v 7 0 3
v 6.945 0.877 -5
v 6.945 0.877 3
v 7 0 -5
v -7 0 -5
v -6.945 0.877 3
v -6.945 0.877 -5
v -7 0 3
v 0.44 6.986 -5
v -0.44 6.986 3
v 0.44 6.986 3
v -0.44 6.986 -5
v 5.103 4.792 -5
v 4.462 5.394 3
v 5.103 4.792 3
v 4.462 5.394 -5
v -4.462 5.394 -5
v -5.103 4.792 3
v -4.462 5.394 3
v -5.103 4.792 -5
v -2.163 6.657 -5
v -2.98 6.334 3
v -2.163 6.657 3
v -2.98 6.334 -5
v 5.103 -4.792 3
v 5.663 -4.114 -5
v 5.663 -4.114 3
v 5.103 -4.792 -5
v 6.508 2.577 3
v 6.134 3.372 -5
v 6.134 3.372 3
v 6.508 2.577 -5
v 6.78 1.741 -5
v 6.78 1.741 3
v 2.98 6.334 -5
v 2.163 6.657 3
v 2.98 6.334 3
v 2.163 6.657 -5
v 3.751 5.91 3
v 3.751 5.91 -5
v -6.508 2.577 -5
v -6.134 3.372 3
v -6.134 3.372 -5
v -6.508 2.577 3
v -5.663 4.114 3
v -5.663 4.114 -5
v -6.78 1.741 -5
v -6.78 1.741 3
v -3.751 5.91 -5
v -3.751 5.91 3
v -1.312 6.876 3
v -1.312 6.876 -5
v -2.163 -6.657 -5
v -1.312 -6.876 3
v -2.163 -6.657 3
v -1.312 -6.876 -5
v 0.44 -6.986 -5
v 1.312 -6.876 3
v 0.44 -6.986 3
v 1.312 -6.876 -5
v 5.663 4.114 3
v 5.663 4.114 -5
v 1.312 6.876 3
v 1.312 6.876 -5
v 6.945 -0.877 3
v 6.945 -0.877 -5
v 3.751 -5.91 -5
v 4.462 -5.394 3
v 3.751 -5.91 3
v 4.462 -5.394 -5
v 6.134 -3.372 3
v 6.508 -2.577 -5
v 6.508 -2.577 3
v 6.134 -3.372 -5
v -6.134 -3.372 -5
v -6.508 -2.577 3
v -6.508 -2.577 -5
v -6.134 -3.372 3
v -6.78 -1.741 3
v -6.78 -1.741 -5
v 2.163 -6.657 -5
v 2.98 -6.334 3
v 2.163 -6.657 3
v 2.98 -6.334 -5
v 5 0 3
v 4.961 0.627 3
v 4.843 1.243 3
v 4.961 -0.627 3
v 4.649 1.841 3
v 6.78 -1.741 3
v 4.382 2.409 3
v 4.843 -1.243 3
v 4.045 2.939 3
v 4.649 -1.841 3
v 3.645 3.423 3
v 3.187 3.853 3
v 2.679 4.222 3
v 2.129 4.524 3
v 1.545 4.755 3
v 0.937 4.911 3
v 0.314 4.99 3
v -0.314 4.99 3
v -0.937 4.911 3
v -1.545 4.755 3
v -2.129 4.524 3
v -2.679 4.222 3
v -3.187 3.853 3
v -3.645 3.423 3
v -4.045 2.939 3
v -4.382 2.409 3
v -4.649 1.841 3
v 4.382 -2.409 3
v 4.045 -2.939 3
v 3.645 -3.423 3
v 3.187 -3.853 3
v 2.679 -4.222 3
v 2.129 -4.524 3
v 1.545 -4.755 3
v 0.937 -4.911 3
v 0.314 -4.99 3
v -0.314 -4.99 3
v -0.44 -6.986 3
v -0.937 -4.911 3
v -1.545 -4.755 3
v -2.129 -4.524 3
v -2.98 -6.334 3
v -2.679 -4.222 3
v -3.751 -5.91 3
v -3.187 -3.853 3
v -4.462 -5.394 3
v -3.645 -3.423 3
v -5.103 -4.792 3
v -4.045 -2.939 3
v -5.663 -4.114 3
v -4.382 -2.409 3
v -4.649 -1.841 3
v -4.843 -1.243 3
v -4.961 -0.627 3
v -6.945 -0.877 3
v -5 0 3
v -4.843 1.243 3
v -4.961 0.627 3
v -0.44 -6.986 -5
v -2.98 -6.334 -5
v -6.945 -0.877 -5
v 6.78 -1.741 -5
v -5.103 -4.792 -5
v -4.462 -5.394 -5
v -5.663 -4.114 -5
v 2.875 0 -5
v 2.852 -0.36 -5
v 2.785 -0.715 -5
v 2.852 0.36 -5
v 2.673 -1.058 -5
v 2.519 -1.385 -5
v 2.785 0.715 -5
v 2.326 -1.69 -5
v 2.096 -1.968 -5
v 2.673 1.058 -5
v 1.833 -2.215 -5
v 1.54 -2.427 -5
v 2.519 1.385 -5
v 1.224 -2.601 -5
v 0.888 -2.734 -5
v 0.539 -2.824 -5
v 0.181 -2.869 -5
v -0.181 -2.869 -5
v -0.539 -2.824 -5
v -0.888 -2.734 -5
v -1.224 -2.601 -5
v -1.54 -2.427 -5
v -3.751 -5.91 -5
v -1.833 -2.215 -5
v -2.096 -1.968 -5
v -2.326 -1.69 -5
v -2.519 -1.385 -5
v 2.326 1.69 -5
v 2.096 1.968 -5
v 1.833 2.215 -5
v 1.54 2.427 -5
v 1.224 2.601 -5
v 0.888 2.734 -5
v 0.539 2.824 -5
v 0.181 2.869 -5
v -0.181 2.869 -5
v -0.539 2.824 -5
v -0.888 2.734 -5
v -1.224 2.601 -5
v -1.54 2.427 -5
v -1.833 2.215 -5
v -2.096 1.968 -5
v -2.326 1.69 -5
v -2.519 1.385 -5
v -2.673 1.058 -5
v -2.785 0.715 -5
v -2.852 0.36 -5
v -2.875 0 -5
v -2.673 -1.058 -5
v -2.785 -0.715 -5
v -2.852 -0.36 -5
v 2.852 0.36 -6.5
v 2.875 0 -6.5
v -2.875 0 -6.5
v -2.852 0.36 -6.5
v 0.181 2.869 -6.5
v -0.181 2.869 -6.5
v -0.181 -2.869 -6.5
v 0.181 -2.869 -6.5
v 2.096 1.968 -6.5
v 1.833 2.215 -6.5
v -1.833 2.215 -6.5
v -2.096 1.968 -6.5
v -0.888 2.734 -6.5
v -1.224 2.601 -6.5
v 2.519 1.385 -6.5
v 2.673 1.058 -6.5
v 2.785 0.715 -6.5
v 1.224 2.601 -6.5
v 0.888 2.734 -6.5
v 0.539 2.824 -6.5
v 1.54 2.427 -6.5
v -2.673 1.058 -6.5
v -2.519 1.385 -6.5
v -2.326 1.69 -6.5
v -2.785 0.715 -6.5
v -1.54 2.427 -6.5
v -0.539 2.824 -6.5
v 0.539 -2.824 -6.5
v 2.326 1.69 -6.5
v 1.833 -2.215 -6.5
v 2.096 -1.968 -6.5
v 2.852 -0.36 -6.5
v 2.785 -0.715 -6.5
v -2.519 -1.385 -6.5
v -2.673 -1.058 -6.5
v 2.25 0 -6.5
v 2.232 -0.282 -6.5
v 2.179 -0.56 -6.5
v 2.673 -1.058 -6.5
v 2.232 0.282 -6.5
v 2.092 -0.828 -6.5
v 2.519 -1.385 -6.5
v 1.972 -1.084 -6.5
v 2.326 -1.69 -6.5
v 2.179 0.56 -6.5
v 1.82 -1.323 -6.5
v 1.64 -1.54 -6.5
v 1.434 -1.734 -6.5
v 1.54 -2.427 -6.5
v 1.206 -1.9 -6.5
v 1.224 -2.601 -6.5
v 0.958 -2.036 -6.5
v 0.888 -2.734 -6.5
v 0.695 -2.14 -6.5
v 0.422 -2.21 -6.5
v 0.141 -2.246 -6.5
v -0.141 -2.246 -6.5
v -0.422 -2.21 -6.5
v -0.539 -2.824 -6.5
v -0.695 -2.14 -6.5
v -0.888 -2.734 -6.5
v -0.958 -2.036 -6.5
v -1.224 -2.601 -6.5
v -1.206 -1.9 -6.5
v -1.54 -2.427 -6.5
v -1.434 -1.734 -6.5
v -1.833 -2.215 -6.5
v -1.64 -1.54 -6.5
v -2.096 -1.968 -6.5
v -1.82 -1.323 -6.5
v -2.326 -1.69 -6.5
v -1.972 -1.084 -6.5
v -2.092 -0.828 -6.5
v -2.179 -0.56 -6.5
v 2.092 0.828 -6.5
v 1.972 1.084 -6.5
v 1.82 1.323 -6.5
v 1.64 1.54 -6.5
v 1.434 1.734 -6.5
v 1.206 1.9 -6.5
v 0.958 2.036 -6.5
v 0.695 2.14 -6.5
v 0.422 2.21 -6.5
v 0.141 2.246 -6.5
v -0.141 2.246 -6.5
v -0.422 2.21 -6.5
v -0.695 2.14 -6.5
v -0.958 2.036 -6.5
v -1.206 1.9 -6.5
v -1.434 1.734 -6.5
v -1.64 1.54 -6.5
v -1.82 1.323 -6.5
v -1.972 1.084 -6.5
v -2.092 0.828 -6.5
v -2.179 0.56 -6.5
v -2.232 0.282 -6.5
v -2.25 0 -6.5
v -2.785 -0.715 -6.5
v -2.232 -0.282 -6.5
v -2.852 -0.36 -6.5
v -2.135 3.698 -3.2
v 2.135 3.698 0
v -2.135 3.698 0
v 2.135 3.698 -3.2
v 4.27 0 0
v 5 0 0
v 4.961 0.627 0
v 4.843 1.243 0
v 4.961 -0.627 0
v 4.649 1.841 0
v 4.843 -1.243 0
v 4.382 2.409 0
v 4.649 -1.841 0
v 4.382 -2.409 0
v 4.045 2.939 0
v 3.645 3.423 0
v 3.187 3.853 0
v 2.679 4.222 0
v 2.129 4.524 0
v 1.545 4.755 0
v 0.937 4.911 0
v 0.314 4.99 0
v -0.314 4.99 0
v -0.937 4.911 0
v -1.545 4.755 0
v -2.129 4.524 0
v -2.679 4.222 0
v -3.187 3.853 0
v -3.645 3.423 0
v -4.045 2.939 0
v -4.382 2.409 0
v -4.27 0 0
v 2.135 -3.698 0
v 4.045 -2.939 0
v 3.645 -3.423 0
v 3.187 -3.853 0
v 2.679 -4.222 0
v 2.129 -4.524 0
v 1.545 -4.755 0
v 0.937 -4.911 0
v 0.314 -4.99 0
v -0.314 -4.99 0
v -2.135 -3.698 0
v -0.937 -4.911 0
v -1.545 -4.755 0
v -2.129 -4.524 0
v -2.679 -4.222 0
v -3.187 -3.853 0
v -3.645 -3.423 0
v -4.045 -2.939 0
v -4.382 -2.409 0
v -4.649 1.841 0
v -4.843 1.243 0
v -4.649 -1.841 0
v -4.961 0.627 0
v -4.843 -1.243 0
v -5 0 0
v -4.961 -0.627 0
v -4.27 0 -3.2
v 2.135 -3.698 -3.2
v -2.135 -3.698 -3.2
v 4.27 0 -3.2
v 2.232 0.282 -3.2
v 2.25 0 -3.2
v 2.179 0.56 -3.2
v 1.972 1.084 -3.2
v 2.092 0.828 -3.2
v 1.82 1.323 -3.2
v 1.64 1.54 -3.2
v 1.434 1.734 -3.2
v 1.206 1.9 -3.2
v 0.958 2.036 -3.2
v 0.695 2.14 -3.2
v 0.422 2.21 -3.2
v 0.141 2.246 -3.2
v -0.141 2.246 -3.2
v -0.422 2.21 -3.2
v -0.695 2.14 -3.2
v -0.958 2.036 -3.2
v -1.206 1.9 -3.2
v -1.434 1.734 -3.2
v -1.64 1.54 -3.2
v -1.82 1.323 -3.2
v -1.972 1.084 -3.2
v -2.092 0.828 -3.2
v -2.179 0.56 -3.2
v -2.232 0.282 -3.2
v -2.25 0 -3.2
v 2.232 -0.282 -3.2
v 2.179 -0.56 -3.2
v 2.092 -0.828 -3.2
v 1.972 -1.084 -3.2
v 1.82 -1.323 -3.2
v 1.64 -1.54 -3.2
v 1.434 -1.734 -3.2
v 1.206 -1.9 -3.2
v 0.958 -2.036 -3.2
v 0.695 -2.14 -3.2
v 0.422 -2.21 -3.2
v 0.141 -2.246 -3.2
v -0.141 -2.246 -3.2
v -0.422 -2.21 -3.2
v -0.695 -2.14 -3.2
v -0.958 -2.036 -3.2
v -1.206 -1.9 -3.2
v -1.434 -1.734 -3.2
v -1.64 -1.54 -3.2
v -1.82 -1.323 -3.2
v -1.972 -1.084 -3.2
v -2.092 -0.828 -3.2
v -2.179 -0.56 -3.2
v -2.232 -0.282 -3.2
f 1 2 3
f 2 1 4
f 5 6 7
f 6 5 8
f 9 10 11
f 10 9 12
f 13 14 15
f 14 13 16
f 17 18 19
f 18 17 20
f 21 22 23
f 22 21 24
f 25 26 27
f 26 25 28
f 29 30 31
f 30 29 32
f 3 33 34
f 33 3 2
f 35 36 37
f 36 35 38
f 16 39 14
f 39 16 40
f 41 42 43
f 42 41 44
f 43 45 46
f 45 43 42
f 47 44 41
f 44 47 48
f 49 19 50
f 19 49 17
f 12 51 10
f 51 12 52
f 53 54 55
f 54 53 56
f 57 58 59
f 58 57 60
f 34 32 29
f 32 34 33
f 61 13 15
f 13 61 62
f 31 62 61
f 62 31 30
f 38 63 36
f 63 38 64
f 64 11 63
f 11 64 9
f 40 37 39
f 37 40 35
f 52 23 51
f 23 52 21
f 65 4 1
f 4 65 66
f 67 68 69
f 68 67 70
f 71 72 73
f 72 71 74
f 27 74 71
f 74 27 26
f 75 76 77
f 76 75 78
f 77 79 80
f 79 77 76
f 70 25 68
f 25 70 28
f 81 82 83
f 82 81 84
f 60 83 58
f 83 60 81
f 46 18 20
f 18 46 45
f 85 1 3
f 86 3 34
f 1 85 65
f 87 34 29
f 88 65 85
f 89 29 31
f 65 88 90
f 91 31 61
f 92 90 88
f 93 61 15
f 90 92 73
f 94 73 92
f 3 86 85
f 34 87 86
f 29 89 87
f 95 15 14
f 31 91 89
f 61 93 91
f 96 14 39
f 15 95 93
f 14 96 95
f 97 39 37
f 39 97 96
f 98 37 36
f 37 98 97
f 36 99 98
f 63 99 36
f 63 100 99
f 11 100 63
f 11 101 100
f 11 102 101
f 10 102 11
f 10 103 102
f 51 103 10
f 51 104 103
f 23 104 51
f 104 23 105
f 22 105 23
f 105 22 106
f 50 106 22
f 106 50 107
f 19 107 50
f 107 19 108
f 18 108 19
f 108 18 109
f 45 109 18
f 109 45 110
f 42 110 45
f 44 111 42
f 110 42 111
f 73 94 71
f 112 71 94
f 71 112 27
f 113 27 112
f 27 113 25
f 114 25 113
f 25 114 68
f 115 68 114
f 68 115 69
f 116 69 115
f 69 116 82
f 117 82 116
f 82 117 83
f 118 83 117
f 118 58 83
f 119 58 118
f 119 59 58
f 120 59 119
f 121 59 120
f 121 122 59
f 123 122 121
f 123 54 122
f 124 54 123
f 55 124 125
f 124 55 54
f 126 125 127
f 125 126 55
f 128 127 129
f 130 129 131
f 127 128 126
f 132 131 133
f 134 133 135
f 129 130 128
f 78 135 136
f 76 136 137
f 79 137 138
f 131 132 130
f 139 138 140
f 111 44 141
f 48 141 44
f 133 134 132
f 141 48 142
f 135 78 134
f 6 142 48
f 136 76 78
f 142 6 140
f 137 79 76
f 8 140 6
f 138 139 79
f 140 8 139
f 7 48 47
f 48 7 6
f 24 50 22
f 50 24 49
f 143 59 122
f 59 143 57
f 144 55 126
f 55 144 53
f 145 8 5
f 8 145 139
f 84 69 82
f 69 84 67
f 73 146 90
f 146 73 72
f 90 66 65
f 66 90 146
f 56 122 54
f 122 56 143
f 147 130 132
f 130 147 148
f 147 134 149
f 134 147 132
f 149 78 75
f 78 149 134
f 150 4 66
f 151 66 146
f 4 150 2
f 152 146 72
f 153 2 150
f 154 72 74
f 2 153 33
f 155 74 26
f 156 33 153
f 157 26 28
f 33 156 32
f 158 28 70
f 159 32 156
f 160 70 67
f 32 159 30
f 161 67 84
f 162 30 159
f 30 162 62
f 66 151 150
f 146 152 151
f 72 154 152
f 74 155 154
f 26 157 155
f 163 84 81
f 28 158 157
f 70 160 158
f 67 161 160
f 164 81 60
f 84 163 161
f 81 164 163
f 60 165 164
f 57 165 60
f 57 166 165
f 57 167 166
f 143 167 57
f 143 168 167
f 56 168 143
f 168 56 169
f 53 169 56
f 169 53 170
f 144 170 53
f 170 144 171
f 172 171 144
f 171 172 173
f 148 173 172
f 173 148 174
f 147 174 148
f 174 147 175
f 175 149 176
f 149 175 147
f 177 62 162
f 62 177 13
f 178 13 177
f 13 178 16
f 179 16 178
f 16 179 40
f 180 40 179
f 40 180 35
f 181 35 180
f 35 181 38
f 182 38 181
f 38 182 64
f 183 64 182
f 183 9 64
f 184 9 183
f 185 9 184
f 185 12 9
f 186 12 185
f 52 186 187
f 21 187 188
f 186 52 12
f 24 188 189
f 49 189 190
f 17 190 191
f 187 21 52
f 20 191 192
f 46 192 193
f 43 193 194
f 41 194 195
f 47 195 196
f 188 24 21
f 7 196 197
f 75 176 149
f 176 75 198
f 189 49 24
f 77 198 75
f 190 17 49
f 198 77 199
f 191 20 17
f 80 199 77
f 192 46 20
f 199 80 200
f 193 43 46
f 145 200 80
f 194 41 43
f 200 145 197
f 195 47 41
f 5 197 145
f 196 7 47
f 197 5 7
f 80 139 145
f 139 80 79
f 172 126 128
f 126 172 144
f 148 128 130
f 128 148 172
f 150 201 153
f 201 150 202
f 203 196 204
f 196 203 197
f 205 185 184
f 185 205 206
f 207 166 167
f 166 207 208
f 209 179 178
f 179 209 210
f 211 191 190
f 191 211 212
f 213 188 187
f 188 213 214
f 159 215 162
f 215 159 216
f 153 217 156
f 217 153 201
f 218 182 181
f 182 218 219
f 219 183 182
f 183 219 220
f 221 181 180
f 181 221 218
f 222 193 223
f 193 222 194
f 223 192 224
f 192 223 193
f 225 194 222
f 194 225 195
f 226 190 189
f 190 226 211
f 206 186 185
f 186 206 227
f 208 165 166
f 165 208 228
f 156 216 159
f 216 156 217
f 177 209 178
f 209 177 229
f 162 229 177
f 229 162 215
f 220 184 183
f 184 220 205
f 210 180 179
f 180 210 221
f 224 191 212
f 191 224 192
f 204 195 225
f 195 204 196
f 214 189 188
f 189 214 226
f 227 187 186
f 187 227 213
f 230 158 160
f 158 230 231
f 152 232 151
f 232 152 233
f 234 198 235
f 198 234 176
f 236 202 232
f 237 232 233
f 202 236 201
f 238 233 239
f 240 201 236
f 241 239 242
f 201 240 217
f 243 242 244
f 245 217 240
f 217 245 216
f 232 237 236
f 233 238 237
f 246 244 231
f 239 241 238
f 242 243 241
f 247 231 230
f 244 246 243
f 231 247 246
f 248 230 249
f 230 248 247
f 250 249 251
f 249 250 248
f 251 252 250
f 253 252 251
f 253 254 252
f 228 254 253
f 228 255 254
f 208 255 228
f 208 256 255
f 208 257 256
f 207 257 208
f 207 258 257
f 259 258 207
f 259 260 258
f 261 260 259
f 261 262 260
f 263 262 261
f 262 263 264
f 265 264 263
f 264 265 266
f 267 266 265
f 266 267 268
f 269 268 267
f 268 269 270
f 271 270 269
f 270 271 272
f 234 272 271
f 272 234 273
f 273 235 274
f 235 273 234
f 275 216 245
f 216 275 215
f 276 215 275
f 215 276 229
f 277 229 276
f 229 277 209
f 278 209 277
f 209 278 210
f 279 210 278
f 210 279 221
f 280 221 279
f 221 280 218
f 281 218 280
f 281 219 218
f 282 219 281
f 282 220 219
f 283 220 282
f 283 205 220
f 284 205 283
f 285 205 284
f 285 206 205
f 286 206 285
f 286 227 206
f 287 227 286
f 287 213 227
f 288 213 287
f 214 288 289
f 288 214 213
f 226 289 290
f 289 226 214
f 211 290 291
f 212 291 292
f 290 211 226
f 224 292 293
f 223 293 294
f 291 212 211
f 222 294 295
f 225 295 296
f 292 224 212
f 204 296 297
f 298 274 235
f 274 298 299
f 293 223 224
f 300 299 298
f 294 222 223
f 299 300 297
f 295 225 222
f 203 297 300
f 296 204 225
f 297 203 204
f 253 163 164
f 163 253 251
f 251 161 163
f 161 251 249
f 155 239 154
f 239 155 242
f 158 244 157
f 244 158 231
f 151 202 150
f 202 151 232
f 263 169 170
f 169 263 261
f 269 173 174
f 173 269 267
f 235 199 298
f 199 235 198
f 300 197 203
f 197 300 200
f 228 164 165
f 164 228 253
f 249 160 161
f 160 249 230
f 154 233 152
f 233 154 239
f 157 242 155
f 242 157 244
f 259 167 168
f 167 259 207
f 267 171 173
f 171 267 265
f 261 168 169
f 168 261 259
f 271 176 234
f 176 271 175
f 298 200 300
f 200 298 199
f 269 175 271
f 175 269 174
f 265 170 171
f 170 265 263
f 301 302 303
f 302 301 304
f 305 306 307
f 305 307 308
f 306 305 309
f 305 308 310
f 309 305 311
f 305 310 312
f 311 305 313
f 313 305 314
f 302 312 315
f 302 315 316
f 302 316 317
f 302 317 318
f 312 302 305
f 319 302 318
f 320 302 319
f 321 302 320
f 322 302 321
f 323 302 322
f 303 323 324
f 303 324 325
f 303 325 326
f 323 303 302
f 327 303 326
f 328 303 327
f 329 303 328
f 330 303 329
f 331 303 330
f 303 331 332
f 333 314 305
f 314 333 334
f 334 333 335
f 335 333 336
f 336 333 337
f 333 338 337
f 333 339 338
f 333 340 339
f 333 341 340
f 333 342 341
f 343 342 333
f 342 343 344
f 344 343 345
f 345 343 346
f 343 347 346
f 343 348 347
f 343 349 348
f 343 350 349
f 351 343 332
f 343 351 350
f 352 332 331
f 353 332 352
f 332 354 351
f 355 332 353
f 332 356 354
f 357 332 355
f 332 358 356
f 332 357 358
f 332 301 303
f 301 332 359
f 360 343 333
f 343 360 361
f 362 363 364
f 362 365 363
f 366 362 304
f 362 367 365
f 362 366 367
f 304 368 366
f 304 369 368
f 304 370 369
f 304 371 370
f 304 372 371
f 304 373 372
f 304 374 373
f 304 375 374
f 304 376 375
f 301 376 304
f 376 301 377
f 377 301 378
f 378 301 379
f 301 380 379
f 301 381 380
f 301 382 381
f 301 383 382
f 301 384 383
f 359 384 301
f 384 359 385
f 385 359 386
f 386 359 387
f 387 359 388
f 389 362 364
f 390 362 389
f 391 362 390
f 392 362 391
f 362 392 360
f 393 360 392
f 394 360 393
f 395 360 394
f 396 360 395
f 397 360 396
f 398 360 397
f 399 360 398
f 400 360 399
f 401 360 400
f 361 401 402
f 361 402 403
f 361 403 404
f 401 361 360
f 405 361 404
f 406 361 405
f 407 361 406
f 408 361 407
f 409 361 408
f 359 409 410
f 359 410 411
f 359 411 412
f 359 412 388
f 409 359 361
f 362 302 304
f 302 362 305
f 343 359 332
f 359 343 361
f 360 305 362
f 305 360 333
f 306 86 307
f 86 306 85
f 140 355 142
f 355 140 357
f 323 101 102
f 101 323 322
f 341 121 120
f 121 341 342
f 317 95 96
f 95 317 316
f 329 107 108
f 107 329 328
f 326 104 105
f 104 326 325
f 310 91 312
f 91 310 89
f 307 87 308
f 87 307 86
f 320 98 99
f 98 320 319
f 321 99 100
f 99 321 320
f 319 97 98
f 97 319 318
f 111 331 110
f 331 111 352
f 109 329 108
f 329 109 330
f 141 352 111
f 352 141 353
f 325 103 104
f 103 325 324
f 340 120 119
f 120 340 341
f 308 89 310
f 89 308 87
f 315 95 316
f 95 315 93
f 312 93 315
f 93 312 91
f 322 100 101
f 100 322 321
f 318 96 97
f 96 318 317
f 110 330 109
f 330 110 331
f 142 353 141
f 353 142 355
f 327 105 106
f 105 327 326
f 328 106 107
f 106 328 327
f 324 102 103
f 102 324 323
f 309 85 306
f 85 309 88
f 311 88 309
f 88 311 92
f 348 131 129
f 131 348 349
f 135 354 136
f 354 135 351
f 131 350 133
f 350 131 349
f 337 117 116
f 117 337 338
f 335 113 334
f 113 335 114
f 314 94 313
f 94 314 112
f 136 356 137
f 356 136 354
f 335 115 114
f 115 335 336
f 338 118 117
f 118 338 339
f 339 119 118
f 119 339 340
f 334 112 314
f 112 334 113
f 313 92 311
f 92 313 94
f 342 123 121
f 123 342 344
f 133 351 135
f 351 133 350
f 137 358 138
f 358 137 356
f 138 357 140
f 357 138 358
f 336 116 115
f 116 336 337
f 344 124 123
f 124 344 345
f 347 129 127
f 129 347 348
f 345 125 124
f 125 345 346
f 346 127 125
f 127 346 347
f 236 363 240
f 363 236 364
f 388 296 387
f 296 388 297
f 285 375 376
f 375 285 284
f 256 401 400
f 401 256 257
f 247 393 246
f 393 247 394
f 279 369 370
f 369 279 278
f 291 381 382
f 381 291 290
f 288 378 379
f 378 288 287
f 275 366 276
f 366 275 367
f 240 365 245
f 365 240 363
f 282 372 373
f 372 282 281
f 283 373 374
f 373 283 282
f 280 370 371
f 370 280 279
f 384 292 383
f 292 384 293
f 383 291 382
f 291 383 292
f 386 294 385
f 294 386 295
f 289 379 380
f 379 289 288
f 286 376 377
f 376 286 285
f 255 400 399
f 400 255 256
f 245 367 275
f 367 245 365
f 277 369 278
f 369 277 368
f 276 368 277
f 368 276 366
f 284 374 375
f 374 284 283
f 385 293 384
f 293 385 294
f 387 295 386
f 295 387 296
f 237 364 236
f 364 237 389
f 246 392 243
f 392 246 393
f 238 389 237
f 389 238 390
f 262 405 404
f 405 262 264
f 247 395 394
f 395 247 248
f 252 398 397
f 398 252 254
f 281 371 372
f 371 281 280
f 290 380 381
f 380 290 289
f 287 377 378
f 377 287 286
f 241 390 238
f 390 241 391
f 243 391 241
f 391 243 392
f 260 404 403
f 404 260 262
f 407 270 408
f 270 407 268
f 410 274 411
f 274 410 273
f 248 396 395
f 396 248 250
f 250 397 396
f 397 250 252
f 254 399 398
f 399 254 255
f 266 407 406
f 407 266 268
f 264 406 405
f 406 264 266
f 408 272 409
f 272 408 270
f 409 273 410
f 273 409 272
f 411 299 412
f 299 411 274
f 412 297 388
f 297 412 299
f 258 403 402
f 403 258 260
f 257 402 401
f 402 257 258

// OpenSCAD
$fn = 50;


difference() {
	union() {
		translate(v = [0, 0, -5.0000000000]) {
			cylinder(h = 8.0000000000, r = 7.0000000000);
		}
		#translate(v = [0, 0, -6.5000000000]) {
			cylinder(h = 6.5000000000, r = 2.8750000000);
		}
	}
	union() {
		translate(v = [0, 0, 0]) {
			rotate(a = [0, 0, 0]) {
				difference() {
					union() {
						translate(v = [0, 0, -3.2000000000]) {
							linear_extrude(height = 3.2000000000) {
								polygon(points = [[4.2698000000, 0.0000000000], [2.1349000000, 3.6977552691], [-2.1349000000, 3.6977552691], [-4.2698000000, 0.0000000000], [-2.1349000000, -3.6977552691], [2.1349000000, -3.6977552691]]);
							}
						}
					}
					union();
				}
			}
		}
		#cylinder(h = 3, r = 5.0000000000);
		#translate(v = [0, 0, -100.0000000000]) {
			cylinder(h = 200, r = 2.2500000000);
		}
	}
}
